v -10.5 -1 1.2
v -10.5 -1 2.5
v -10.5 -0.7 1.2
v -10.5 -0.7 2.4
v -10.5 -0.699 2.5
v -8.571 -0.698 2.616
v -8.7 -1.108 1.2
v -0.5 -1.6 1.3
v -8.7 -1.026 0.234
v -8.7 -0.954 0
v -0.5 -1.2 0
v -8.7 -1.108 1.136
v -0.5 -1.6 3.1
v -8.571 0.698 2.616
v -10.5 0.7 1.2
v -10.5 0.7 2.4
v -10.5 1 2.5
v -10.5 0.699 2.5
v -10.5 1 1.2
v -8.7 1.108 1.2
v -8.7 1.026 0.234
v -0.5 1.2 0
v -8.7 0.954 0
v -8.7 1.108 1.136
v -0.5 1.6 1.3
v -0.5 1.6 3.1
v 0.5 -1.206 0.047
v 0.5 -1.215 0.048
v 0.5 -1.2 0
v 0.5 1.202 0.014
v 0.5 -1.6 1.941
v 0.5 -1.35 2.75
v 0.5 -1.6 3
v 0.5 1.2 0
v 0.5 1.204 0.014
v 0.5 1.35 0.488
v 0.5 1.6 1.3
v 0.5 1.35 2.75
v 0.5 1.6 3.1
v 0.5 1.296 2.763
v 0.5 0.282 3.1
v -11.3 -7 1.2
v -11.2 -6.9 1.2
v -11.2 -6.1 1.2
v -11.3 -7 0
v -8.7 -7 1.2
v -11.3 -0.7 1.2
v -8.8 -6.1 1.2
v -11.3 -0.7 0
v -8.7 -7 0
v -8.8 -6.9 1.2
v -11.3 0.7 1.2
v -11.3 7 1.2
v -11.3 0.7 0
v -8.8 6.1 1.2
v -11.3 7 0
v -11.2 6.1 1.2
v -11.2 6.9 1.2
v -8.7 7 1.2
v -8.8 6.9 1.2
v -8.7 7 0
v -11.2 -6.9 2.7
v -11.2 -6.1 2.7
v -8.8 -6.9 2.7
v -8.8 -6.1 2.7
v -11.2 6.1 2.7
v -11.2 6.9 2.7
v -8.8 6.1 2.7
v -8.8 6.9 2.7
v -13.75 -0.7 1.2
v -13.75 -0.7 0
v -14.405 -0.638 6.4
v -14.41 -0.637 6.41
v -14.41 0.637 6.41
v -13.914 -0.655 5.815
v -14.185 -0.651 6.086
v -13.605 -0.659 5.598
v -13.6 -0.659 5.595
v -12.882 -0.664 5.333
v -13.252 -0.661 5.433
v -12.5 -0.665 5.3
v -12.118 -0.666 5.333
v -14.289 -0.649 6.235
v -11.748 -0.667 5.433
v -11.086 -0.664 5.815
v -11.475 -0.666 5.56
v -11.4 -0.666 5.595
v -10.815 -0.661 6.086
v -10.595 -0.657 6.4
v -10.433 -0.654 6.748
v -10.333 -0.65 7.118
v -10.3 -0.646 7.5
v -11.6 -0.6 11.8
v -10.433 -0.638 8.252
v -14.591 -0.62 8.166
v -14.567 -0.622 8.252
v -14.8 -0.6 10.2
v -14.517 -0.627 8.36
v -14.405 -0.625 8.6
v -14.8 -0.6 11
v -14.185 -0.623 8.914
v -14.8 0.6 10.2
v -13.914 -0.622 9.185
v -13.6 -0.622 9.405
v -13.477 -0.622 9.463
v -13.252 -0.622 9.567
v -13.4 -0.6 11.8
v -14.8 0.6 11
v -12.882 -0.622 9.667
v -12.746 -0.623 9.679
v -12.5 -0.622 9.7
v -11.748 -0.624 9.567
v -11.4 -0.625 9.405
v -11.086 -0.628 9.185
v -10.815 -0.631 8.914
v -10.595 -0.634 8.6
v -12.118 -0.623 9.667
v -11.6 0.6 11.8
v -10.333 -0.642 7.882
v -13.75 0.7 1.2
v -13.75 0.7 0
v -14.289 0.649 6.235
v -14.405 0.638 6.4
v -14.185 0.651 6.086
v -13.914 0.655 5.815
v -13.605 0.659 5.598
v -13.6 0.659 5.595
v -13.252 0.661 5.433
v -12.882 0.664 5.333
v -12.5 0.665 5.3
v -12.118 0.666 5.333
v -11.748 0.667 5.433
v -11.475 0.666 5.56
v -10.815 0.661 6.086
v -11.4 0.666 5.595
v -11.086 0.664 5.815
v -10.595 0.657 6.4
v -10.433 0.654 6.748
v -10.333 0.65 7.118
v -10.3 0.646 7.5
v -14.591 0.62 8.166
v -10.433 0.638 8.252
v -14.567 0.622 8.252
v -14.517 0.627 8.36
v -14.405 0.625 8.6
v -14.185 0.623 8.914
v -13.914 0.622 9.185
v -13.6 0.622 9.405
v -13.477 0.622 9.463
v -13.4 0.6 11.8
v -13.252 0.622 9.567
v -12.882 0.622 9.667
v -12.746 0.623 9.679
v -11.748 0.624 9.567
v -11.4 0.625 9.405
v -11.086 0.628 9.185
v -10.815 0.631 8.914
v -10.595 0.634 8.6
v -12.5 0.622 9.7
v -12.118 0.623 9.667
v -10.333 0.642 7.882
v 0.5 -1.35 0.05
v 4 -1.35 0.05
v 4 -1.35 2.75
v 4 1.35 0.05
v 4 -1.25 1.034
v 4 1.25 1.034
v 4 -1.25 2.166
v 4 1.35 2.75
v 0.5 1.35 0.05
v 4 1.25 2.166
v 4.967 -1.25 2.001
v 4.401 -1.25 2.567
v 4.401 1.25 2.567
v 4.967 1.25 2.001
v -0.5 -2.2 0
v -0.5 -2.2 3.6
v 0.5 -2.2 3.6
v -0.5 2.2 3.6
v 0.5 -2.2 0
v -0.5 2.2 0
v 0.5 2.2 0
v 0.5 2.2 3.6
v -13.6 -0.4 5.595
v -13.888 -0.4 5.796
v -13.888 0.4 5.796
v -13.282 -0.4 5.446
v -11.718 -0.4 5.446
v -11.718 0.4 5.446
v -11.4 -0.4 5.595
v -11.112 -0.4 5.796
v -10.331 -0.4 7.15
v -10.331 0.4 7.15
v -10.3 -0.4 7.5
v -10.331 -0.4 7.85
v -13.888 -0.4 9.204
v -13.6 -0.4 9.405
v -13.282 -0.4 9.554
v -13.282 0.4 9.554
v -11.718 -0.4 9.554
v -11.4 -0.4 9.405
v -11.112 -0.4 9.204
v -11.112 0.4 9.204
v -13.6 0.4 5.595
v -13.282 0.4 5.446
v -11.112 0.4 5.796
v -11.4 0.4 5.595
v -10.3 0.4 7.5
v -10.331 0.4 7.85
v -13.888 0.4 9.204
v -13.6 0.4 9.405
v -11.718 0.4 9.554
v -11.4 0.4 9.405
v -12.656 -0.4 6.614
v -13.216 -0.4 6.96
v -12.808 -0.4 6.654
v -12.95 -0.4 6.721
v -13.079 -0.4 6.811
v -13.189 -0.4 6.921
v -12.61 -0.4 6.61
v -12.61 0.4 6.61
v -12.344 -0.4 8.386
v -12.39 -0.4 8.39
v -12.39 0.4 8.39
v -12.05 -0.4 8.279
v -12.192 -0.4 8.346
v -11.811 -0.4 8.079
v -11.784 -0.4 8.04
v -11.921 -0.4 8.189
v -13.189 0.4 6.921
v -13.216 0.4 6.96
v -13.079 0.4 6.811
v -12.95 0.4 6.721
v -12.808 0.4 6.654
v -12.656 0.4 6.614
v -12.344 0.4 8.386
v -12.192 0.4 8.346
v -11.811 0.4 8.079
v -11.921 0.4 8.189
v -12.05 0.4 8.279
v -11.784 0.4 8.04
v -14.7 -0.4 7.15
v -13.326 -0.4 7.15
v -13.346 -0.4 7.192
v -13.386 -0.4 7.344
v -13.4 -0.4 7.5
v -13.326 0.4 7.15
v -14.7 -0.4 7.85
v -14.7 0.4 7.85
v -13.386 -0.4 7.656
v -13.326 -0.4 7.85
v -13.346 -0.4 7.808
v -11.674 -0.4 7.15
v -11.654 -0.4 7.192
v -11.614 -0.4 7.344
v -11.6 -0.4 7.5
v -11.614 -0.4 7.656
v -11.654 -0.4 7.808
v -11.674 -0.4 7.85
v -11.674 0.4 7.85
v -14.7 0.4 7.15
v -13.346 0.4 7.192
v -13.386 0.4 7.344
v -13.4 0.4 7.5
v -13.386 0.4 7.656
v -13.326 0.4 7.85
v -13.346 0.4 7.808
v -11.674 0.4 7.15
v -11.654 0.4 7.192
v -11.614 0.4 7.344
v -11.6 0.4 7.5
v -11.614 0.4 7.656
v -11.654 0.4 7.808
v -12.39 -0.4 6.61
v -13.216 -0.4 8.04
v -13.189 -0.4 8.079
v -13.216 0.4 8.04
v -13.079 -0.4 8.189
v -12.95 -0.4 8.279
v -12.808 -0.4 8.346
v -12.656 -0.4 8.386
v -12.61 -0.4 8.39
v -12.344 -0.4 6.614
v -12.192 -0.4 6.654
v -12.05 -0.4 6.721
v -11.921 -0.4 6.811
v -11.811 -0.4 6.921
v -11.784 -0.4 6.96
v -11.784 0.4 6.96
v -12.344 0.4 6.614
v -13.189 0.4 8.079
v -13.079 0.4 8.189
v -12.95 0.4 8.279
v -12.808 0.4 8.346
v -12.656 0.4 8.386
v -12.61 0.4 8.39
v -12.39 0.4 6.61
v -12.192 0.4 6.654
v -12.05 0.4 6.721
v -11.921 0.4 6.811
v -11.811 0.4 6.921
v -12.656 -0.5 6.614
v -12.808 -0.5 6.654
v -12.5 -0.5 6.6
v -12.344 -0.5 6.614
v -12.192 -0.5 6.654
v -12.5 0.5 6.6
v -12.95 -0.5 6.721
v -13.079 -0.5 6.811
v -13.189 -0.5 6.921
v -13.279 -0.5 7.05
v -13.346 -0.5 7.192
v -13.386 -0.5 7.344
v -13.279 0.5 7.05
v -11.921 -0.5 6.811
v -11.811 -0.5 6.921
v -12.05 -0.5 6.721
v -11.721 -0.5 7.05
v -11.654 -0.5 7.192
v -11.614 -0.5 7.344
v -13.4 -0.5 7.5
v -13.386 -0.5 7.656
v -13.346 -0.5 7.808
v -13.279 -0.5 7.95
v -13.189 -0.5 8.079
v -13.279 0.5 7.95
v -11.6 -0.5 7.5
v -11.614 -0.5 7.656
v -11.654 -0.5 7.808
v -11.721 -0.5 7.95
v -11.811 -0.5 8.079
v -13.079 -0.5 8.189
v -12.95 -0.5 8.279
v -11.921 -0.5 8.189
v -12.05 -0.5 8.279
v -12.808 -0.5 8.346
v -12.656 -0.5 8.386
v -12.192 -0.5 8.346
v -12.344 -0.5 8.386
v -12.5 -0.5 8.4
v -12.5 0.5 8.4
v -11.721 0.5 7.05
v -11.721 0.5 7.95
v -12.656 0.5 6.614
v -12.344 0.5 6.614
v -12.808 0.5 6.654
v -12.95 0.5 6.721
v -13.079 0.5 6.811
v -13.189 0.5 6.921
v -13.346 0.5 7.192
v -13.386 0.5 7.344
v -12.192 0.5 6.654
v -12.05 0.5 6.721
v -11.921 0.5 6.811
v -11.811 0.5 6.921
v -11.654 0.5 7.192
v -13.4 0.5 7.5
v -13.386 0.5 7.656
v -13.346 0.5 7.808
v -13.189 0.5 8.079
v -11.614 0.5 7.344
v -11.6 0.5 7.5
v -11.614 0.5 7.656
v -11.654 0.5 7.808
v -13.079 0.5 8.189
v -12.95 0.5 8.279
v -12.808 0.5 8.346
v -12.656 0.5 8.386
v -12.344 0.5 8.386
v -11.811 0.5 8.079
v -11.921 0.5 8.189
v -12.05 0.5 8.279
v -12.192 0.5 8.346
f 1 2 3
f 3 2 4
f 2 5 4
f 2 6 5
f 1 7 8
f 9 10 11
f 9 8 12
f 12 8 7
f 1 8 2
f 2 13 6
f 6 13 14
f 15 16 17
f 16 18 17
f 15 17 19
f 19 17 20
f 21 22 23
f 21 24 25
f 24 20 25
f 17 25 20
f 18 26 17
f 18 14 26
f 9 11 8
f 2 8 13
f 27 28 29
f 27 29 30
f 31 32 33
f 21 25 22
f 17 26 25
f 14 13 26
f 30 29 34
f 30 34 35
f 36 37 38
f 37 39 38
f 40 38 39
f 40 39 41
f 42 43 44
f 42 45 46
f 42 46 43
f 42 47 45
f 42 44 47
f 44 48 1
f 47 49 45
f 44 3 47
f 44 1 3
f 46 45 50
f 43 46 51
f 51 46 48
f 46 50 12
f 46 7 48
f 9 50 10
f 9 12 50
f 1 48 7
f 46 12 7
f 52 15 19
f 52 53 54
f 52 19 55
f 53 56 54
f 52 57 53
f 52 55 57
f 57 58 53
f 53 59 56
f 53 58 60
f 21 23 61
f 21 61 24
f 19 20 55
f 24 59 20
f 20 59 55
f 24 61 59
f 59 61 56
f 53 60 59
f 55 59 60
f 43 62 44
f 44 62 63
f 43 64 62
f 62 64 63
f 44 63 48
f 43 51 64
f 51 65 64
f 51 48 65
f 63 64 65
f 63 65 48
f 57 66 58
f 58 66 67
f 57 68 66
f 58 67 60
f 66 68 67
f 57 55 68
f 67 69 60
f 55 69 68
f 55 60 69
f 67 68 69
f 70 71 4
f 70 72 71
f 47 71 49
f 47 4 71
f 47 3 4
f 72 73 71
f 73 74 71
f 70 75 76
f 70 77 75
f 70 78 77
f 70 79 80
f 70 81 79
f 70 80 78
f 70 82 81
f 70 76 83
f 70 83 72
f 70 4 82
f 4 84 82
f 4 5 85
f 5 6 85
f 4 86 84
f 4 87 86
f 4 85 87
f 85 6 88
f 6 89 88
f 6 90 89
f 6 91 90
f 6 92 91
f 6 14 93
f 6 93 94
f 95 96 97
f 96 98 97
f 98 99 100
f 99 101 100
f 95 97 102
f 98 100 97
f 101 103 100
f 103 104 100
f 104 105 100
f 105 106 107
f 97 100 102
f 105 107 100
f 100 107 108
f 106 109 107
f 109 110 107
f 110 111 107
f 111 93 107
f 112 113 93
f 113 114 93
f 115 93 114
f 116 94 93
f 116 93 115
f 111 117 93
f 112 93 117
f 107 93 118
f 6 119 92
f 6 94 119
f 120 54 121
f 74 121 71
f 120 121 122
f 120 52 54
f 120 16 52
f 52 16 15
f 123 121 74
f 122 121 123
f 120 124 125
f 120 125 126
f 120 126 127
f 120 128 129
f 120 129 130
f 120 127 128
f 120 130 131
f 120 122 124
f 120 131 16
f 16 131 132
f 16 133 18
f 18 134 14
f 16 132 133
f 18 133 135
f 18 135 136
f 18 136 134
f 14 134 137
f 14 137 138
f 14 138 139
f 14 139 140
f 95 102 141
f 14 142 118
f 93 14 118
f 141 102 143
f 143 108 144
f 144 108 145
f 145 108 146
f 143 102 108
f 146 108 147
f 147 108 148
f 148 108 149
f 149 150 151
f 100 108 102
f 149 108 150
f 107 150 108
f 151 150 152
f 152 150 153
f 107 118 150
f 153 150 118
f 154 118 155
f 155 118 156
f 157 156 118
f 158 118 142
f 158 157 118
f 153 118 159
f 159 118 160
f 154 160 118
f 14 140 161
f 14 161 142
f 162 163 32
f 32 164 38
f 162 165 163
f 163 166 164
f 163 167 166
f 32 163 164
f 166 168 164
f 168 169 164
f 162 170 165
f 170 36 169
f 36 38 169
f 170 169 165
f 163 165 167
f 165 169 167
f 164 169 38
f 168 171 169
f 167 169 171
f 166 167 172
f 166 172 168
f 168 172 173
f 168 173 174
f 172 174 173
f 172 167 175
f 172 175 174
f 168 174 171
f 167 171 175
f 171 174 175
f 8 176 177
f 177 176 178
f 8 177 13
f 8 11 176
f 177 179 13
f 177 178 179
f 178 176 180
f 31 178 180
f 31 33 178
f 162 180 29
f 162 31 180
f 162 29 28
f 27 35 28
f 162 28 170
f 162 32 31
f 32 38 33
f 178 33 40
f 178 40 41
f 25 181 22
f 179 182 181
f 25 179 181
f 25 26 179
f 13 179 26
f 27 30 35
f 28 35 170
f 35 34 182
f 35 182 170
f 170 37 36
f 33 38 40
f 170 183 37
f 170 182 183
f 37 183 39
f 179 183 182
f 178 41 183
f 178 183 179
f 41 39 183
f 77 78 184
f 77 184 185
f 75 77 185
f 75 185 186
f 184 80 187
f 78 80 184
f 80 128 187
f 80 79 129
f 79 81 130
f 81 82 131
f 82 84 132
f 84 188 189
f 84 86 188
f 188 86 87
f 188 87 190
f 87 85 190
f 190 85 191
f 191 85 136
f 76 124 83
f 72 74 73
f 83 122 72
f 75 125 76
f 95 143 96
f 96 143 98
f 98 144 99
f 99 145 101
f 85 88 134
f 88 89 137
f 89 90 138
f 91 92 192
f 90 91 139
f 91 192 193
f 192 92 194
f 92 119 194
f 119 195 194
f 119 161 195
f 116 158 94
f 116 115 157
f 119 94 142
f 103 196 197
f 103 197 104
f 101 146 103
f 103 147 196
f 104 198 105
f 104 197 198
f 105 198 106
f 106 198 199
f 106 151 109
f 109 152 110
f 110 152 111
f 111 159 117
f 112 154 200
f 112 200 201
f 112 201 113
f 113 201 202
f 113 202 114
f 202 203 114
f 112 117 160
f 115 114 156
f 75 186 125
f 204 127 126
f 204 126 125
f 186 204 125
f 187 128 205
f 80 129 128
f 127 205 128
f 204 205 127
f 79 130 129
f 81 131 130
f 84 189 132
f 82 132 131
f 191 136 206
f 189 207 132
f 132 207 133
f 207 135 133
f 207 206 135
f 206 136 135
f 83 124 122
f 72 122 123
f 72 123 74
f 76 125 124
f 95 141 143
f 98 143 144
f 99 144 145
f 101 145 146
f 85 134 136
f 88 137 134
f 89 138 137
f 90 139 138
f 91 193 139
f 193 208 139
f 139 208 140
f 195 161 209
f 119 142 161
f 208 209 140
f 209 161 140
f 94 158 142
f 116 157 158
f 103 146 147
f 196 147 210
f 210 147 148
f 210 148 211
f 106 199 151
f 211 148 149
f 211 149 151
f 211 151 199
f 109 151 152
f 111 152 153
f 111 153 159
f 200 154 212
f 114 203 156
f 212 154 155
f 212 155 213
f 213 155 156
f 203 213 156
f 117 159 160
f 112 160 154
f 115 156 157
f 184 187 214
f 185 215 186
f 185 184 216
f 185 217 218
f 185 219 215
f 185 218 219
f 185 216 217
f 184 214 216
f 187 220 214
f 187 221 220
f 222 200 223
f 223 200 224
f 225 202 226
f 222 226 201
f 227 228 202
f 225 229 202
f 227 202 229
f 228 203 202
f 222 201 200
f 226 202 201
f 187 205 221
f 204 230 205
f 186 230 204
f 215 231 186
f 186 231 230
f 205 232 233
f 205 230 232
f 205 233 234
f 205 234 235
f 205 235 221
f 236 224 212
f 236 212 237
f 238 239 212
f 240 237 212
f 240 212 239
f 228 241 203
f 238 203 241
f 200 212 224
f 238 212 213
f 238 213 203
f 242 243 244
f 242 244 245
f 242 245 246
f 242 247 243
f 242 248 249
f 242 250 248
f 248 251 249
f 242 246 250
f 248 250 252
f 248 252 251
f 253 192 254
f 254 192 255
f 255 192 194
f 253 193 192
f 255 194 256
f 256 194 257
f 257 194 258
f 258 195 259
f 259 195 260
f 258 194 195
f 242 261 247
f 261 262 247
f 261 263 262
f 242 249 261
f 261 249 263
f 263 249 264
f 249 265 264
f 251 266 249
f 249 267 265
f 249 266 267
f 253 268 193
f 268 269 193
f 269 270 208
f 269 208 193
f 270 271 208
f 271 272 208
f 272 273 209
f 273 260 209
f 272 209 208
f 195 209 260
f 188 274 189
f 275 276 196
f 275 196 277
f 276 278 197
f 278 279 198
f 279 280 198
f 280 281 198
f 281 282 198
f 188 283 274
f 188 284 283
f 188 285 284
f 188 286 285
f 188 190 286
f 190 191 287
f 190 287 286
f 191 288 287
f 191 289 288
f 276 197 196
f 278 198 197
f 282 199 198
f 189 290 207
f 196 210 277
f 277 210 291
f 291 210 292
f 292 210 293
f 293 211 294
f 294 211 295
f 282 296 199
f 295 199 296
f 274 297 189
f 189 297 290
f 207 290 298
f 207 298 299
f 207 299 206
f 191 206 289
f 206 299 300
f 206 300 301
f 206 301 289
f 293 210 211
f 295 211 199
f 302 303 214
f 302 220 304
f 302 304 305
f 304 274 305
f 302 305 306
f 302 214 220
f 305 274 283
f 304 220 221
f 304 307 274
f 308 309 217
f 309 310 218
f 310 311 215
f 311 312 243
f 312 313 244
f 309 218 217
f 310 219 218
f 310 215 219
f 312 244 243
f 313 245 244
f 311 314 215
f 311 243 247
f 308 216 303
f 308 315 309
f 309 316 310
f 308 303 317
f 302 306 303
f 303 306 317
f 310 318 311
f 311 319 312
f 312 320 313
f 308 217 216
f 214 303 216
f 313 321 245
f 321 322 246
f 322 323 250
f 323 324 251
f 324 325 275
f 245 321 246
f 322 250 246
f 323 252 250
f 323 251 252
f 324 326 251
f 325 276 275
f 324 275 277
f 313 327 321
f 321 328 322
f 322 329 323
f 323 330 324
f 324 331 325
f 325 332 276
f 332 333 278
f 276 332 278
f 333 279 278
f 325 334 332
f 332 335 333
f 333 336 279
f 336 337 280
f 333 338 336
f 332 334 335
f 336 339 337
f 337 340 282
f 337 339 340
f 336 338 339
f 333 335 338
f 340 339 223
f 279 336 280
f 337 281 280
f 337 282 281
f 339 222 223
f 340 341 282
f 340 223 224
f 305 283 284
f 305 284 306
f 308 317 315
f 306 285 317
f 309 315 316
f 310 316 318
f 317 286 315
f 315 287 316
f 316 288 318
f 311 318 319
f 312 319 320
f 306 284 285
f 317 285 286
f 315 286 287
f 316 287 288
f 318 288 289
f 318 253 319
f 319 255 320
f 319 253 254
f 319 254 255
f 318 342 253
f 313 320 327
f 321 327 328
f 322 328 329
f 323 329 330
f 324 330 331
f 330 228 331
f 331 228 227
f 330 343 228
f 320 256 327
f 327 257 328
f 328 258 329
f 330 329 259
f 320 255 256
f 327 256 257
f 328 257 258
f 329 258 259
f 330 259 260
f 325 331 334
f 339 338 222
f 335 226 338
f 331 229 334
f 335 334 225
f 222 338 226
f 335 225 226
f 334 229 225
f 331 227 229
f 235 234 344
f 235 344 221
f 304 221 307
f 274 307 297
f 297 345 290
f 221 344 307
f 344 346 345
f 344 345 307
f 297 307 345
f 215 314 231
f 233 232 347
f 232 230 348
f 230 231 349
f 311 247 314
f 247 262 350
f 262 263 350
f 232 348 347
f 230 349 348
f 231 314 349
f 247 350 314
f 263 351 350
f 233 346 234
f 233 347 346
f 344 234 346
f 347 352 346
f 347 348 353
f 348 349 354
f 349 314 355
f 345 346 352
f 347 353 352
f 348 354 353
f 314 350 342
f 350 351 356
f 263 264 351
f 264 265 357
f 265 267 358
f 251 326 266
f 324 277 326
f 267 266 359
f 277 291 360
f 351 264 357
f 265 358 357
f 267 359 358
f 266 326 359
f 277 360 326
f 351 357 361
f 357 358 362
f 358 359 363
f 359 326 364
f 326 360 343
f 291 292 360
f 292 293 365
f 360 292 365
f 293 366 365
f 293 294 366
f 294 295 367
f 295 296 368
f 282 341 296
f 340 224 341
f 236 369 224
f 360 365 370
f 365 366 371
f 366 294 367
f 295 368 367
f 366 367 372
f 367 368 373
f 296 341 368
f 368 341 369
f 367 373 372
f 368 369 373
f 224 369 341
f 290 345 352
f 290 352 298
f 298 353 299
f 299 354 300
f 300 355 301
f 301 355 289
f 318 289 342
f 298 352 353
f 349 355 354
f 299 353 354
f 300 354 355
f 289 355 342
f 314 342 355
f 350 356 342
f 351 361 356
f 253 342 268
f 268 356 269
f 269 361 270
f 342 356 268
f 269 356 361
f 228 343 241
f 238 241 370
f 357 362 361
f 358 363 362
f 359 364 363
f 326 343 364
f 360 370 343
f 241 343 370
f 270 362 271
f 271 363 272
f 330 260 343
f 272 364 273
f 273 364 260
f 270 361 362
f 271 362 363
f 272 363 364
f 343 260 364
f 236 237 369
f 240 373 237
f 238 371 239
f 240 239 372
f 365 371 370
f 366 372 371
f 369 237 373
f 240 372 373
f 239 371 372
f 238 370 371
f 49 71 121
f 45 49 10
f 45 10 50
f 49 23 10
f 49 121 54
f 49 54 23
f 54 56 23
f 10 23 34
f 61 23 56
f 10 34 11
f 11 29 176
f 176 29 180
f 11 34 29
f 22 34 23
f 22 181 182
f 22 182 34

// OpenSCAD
// ====================================================================
// Test Fenestron Ducted Fan with Overlapping CSG Stators
// ====================================================================

$fn = 36;

module tail_boom_with_fenestron() {
    difference() {
        union() {
            // Main structure with duct hole
            difference() {
                union() {
                    // Male Keyway Connector Plug (flat on Z = 0)
                    translate([2.0, 0, 1.4])
                        cube([4.0, 2.7, 2.7], center = true);
                    // Lead-in chamfer
                    translate([3.8, 0, 1.4])
                        rotate([0, 45, 0])
                            cube([0.8, 2.5, 2.5], center = true);

                    // Bulkhead stop flange (X = 0)
                    translate([0, 0, 1.8])
                        cube([1.0, 4.4, 3.6], center = true);

                    // Tail Boom Spine (Continuous flat bed runner on Z = 0)
                    hull() {
                        translate([0, 0, 0.1])
                            cube([1.0, 2.4, 0.2], center = true);
                        translate([0, 0, 2.2])
                            cube([1.0, 3.2, 1.8], center = true);
                        translate([-10.0, 0, 0.1])
                            cube([1.0, 1.8, 0.2], center = true);
                        translate([-10.0, 0, 1.8])
                            cube([1.0, 2.0, 1.4], center = true);
                    }

                    // Horizontal Stabilizer (Grounded 100% flat on Z = 0)
                    translate([-10.0, 0, 0]) {
                        hull() {
                            translate([0, 0, 0.6])
                                cube([2.6, 14.0, 1.2], center = true);
                            translate([-0.6, 0, 0.4])
                                cube([1.2, 14.0, 0.8], center = true);
                        }
                        // Endplate vertical fins (rise at 90°)
                        for (sy = [-1, 1]) {
                            translate([0, sy * 6.5, 1.4])
                                cube([2.4, 0.8, 2.6], center = true);
                        }
                    }

                    // Swept Vertical Stabilizer Fin (Rises vertically at 90° from Z = 0)
                    hull() {
                        translate([-9.5, 0, 1.8])
                            cube([2.0, 1.4, 1.2], center = true);
                        translate([-12.5, 0, 11.2])
                            cube([1.8, 1.2, 1.2], center = true);
                        translate([-14.2, 0, 10.6])
                            cube([1.2, 1.2, 0.8], center = true);
                        translate([-12.5, 0, 0.6])
                            cube([2.5, 1.4, 1.2], center = true);
                    }
                }

                // Fenestron through-hole
                translate([-12.5, 0, 7.5])
                    rotate([90, 0, 0])
                        cylinder(d = 4.4, h = 3.0, center = true);
            }

            // Ducted fan hub & stators
            translate([-12.5, 0, 7.5]) {
                rotate([90, 0, 0])
                    cylinder(d = 1.8, h = 1.0, center = true);
                for (a = [30, 90, 150]) {
                    rotate([0, a, 0])
                        cube([0.7, 0.8, 4.4], center = true);
                }
            }
        }

        // Bed trim plane at Z = 0
        translate([0, 0, -5.0])
            cube([40, 40, 10], center = true);
    }
}

tail_boom_with_fenestron();
